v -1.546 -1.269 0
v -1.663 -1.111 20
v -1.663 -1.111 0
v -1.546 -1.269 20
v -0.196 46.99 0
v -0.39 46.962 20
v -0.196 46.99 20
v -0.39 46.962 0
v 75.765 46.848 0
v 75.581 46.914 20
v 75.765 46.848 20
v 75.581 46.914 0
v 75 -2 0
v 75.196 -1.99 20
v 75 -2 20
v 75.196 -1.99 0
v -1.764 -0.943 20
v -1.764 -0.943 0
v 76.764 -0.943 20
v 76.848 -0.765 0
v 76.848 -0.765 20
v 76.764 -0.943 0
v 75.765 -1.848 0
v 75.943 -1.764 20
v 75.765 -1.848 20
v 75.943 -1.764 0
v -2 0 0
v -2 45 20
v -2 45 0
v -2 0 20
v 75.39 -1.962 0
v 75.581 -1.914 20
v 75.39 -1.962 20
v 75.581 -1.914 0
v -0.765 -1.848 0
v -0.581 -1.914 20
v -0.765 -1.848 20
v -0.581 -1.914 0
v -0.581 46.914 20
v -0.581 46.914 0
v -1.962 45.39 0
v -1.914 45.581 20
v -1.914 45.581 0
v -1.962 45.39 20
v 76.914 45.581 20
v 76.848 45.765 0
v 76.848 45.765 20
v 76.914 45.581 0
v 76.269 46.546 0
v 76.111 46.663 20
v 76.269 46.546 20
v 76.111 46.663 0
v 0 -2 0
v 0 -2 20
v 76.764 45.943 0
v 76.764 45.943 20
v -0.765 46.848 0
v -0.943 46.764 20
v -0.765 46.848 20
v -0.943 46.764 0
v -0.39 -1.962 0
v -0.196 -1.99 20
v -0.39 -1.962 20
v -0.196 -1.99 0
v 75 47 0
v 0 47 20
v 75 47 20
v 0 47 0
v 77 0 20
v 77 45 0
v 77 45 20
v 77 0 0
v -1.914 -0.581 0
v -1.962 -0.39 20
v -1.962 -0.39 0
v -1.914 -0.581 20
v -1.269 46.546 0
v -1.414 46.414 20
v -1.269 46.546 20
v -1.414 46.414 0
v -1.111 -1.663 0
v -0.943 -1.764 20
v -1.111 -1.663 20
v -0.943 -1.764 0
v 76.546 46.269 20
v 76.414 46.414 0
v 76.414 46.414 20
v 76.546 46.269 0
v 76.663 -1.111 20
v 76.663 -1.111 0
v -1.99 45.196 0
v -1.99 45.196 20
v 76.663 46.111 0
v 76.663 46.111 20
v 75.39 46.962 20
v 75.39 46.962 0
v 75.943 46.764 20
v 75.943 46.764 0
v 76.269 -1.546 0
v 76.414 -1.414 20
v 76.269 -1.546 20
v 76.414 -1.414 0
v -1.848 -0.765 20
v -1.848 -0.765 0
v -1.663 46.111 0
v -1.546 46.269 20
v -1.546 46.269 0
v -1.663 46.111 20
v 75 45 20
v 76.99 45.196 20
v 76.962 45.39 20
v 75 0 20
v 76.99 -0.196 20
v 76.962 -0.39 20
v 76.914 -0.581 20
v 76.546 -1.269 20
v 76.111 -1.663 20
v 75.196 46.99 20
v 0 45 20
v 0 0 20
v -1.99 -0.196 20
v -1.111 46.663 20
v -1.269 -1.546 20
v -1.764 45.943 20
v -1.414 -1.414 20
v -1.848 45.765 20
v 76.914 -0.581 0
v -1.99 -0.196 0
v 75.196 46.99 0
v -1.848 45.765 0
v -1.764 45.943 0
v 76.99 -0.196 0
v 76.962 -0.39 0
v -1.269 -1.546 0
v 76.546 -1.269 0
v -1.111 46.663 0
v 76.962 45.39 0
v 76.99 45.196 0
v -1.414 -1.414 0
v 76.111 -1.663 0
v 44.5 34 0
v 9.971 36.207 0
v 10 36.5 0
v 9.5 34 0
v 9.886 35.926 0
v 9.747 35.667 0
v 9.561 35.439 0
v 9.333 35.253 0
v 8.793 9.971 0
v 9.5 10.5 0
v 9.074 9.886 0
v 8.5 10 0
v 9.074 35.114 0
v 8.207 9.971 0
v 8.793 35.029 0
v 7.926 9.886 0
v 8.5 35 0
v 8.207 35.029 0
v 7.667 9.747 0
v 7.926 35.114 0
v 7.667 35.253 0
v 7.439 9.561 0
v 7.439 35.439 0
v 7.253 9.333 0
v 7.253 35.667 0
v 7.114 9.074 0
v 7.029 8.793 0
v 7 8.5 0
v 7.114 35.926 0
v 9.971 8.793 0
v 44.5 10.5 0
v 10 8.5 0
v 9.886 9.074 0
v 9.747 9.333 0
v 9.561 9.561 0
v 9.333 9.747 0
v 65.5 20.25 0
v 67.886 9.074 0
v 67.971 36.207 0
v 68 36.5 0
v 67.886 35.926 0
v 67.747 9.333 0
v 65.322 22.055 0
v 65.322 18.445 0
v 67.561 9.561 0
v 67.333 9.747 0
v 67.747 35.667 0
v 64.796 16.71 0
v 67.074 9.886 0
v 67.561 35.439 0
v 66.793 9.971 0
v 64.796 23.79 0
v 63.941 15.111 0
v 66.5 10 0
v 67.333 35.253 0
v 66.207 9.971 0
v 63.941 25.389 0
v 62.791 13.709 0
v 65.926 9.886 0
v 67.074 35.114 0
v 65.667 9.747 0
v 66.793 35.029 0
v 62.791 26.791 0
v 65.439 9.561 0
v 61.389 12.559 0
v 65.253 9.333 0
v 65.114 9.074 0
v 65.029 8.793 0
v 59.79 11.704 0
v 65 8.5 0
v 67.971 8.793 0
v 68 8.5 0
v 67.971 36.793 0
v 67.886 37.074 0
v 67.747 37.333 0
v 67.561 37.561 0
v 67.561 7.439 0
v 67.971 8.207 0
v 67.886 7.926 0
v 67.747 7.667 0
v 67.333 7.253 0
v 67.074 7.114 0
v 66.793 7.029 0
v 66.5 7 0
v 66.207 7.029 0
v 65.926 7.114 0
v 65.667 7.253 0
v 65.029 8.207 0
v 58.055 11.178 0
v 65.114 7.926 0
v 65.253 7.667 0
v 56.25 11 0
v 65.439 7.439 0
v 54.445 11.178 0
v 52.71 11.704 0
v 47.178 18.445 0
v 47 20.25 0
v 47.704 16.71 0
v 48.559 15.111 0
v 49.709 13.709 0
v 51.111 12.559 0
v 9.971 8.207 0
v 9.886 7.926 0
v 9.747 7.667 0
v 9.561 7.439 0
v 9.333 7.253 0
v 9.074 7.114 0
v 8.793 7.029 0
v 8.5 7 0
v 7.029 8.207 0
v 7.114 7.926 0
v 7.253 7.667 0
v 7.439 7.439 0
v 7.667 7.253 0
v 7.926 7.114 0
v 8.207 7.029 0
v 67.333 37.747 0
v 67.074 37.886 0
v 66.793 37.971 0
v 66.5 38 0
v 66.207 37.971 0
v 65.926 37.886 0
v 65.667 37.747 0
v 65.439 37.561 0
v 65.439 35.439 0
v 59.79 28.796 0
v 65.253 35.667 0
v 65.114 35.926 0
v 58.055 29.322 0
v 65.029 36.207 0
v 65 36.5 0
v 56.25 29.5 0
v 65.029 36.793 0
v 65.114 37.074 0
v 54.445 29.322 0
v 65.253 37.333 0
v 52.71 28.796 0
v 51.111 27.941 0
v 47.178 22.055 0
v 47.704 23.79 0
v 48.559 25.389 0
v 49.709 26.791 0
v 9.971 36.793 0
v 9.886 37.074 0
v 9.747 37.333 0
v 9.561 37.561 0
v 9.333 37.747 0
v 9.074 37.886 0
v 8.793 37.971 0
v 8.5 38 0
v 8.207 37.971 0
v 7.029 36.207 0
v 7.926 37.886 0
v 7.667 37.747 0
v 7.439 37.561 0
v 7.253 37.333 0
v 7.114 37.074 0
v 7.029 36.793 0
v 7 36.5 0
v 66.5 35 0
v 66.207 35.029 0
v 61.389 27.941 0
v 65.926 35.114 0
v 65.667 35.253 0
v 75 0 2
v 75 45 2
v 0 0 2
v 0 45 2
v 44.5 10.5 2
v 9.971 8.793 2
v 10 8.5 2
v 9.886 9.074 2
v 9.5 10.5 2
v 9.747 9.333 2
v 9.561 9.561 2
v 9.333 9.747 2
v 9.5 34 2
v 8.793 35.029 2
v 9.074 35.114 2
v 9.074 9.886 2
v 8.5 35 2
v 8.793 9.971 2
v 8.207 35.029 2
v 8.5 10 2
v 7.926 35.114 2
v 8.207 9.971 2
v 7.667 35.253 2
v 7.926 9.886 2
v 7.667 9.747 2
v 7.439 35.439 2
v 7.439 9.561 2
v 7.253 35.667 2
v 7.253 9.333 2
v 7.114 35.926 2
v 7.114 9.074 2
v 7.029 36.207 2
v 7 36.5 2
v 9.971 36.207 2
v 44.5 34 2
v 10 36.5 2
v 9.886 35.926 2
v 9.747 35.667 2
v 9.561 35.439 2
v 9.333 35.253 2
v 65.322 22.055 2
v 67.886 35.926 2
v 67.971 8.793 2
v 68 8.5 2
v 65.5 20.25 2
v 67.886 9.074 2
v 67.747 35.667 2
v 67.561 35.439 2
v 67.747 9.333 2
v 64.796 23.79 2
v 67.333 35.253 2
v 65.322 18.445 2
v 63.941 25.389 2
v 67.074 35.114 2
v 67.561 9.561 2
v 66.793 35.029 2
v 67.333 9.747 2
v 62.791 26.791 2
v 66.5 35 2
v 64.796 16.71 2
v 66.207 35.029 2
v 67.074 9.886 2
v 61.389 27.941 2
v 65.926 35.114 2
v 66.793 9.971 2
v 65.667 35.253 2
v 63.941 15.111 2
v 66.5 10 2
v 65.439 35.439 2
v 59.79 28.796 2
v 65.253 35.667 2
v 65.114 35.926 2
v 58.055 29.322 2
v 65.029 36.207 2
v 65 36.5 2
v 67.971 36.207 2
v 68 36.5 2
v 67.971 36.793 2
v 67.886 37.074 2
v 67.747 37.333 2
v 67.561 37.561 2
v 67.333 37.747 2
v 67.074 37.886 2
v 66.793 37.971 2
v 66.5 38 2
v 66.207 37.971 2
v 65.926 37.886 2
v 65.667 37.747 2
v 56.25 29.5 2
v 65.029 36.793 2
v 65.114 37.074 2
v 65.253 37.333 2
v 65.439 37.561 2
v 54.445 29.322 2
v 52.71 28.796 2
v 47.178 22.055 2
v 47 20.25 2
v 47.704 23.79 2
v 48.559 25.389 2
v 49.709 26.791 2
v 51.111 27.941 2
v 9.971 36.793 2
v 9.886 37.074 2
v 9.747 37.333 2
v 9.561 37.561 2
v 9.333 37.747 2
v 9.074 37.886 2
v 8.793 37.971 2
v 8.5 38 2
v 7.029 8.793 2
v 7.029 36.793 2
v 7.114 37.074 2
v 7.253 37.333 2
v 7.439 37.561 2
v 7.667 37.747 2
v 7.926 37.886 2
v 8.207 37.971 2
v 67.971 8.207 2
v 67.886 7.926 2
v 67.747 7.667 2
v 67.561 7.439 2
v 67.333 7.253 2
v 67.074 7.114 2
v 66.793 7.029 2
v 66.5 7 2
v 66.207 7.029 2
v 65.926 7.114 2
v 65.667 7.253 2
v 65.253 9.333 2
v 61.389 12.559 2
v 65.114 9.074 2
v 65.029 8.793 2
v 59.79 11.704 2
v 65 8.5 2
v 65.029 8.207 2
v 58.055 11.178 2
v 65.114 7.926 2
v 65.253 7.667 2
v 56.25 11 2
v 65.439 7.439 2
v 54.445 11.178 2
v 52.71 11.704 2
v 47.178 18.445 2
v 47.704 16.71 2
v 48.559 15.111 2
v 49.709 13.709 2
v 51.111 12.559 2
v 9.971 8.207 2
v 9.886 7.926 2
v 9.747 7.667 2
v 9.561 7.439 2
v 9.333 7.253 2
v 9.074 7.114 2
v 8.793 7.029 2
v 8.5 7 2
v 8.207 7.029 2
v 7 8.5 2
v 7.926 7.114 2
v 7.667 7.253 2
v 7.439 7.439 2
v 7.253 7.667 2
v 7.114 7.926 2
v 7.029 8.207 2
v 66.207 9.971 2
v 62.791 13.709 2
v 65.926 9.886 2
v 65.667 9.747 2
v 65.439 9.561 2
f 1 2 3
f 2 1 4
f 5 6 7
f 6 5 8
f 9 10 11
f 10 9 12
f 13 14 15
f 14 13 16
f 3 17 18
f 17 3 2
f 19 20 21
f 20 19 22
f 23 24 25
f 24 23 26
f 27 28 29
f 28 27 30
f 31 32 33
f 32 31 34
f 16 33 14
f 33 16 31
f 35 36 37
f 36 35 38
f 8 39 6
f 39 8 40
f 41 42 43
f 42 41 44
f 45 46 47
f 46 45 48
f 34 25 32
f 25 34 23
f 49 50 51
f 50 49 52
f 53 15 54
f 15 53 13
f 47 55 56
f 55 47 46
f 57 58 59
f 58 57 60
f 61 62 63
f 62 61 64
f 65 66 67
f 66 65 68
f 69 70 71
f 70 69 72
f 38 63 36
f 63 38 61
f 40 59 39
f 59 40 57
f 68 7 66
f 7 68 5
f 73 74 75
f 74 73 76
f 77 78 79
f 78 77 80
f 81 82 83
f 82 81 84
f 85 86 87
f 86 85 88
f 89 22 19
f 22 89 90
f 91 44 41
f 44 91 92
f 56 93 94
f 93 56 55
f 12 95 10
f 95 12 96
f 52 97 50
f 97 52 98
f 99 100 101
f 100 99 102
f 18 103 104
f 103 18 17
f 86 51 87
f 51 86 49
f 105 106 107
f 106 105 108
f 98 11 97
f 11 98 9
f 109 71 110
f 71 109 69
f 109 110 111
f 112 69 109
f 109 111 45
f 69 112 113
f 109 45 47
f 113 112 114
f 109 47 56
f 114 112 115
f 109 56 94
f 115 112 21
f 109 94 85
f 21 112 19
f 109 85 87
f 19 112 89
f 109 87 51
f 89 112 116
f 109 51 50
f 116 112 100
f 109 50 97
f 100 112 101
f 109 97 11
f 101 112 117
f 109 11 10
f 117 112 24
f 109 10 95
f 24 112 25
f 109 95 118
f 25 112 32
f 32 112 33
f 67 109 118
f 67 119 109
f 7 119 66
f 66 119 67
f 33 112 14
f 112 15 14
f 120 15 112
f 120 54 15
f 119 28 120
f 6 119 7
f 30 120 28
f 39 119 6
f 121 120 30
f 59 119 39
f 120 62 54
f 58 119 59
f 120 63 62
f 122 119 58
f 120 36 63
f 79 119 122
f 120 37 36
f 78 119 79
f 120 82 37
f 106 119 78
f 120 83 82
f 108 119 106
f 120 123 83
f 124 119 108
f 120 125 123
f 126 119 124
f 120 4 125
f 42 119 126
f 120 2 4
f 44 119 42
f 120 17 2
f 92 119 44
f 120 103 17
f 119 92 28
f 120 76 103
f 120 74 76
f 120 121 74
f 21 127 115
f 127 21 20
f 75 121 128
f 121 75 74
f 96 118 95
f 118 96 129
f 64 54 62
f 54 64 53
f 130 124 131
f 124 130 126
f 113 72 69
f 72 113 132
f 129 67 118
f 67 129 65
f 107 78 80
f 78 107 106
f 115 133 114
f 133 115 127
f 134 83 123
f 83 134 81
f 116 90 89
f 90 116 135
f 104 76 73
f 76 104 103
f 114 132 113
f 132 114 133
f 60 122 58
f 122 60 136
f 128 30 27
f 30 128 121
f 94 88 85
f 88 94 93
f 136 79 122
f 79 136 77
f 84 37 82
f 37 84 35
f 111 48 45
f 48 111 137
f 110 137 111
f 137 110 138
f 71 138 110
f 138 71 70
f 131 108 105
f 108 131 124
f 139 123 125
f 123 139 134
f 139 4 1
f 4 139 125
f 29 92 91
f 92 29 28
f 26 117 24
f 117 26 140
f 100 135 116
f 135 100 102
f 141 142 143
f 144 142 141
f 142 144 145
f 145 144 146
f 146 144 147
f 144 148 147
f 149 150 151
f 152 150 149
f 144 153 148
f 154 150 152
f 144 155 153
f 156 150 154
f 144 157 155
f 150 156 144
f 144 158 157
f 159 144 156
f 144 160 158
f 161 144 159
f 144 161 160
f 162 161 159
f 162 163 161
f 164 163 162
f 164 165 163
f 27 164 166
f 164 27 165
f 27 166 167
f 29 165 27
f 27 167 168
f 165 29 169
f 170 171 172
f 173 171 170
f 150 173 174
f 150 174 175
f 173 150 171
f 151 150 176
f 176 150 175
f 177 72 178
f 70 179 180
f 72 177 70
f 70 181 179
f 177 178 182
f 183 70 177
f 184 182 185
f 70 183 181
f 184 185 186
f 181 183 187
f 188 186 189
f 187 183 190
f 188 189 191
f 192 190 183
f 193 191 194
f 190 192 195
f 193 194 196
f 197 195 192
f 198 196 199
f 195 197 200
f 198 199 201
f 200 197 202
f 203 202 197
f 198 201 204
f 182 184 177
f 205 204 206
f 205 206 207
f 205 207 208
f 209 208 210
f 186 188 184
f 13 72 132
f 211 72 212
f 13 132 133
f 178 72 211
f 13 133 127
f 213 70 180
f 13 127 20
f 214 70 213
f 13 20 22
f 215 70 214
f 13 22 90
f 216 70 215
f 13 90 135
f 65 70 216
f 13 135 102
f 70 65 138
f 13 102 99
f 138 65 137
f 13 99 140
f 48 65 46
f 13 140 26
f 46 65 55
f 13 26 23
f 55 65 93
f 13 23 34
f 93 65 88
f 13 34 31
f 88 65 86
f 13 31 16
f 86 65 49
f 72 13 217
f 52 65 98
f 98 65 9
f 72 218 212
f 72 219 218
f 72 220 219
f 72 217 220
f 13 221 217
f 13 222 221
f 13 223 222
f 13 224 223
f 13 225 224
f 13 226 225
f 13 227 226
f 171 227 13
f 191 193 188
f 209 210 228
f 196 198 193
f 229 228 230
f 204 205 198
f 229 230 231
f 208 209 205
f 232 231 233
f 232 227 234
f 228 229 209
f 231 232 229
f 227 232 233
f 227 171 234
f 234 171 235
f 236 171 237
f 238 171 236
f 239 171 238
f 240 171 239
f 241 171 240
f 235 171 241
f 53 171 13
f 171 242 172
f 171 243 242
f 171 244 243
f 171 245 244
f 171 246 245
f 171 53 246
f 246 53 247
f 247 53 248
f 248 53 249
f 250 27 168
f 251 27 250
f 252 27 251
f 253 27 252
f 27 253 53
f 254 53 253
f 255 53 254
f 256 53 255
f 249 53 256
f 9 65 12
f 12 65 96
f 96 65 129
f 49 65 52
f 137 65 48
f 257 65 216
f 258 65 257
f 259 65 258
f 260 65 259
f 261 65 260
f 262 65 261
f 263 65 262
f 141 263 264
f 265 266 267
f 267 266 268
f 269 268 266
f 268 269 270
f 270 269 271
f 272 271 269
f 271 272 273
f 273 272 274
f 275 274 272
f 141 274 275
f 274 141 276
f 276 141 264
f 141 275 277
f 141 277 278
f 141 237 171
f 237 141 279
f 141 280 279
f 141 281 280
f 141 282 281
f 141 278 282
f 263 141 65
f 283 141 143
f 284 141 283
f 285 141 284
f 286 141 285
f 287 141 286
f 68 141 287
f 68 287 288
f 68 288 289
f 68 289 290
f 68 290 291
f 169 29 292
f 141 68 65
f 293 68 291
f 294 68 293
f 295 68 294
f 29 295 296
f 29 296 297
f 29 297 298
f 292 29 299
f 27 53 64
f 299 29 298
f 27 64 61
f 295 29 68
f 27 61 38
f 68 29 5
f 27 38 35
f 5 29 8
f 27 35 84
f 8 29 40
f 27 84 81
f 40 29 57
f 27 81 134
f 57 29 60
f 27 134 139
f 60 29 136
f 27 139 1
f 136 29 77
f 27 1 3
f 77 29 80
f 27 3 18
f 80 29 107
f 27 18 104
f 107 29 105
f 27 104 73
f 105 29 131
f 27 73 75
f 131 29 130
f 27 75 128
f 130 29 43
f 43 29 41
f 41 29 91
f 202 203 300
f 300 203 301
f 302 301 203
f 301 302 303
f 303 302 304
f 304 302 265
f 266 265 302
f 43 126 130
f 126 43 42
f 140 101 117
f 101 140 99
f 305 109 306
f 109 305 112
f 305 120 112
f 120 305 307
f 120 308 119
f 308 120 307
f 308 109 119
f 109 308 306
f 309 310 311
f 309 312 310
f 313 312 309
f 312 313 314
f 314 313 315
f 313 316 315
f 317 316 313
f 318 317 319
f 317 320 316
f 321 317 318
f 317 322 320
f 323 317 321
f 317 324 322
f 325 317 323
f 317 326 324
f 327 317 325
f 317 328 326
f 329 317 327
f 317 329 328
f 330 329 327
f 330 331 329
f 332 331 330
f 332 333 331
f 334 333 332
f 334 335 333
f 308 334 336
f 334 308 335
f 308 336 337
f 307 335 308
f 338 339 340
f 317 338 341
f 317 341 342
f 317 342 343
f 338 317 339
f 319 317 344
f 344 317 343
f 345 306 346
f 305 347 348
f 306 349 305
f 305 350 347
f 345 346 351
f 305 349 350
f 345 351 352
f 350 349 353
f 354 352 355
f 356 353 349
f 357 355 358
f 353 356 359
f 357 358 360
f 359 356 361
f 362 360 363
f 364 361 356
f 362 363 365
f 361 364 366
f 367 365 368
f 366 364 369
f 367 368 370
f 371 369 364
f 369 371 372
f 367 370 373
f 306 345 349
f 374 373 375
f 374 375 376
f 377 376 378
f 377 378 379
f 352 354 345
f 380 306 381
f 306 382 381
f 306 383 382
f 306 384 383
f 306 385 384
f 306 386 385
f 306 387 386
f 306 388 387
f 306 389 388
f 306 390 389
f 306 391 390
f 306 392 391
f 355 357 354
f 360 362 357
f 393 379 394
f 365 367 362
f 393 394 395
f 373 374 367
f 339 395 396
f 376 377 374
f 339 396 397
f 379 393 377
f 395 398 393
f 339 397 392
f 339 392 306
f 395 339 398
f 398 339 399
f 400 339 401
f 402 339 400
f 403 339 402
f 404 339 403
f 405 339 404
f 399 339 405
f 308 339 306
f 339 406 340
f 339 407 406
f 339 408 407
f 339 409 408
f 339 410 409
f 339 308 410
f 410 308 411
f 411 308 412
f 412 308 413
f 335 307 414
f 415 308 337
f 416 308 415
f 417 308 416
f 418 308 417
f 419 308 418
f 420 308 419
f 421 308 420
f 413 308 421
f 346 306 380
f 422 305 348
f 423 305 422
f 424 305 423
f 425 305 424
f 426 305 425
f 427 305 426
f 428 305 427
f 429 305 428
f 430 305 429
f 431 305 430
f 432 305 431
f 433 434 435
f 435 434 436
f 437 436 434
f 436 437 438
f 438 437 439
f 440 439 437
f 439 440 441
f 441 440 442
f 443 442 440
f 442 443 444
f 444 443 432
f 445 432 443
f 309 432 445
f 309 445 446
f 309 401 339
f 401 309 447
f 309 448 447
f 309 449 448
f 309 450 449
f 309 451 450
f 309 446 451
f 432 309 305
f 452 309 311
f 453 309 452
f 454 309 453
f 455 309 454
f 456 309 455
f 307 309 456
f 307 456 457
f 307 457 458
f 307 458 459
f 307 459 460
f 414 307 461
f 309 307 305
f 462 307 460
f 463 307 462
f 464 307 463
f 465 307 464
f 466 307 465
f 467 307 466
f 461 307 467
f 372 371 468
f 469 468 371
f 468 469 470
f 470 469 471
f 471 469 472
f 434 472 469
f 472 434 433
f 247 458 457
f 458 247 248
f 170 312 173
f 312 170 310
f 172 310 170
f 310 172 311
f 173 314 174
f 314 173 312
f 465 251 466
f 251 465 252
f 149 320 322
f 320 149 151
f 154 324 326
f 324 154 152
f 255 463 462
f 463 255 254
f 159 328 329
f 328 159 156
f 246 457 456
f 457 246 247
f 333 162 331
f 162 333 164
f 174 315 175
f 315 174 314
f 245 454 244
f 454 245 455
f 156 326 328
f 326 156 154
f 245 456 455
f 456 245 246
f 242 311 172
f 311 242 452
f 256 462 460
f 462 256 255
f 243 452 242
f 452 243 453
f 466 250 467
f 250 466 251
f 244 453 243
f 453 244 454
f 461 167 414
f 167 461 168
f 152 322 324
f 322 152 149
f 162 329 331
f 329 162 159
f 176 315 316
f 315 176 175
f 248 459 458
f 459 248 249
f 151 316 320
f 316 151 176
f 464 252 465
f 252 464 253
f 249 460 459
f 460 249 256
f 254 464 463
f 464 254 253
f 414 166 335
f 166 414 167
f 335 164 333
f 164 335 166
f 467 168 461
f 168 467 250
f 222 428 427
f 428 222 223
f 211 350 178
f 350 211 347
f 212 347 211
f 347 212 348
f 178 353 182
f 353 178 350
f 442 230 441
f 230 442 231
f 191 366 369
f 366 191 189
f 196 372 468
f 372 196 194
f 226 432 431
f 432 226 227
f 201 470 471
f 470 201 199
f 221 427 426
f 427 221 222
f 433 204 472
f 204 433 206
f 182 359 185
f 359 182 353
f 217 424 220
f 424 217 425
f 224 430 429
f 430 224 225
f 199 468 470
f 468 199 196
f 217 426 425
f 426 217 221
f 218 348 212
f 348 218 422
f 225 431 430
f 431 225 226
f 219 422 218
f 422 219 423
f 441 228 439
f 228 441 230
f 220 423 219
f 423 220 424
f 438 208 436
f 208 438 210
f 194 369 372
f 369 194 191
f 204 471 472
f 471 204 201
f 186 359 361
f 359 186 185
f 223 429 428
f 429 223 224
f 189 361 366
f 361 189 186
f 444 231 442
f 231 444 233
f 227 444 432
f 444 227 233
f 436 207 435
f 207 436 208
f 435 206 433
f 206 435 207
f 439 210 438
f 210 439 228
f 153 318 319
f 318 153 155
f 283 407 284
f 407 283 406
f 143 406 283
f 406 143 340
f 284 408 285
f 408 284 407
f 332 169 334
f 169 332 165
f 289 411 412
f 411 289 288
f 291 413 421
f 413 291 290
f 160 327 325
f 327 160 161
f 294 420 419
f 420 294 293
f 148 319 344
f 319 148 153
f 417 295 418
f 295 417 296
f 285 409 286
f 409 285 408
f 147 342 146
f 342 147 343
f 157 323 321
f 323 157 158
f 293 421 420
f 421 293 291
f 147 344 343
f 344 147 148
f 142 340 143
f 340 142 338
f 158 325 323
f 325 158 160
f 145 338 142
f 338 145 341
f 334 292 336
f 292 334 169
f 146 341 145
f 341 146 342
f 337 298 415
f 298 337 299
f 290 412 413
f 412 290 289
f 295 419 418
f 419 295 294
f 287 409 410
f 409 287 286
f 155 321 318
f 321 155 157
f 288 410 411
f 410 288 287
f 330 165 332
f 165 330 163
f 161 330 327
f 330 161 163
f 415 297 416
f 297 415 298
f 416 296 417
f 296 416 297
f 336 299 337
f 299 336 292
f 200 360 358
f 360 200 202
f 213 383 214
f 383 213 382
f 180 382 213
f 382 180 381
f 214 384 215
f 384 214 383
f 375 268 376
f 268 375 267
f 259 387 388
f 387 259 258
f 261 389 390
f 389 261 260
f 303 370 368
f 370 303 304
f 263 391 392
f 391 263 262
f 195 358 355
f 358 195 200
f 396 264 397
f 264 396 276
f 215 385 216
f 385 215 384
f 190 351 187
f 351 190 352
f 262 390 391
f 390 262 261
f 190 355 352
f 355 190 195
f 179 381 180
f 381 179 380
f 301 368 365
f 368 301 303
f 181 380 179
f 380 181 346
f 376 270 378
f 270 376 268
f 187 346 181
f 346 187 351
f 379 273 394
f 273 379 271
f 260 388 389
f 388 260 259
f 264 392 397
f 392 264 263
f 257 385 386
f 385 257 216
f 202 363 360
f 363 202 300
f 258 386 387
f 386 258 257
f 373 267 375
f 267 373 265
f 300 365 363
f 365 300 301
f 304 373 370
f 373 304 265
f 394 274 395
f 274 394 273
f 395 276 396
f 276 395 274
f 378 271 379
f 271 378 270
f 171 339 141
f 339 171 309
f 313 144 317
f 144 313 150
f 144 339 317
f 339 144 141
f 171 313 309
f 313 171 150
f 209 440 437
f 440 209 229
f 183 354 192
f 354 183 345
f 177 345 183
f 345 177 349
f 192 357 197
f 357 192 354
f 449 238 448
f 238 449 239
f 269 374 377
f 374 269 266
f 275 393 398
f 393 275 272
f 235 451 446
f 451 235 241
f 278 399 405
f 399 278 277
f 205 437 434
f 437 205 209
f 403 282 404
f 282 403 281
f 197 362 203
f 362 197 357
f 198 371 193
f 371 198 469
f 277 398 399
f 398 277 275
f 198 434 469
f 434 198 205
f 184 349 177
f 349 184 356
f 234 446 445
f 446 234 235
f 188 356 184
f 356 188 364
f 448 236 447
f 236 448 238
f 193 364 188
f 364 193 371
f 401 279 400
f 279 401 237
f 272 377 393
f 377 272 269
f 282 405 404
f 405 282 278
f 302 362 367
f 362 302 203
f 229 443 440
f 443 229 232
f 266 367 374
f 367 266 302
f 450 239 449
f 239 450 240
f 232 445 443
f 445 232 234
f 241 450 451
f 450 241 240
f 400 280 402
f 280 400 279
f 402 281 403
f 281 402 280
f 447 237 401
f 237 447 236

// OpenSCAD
include <common.scad>
$fn = 32;
 rborder([75, 45, 20], 2, r=0);
difference () {
    rcube([75, 45, 2], r=1);
    translate([8.5, 8.5, -2])
    cylinder(h=20, r = 1.5);
    translate([66.5, 8.5, -2])
    cylinder(h=20, r = 1.5);
    translate([8.5, 36.5, -2])
    cylinder(h=20, r = 1.5);
    translate([66.5, 36.5, -2])
    cylinder(h=20, r = 1.5);
    translate([9.5, 10.5, -2])
    cube([35, 23.5, 10]);
    translate([56.25, 20.25, -2])
    cylinder(h=20, r = 9.25);
 } 
 
